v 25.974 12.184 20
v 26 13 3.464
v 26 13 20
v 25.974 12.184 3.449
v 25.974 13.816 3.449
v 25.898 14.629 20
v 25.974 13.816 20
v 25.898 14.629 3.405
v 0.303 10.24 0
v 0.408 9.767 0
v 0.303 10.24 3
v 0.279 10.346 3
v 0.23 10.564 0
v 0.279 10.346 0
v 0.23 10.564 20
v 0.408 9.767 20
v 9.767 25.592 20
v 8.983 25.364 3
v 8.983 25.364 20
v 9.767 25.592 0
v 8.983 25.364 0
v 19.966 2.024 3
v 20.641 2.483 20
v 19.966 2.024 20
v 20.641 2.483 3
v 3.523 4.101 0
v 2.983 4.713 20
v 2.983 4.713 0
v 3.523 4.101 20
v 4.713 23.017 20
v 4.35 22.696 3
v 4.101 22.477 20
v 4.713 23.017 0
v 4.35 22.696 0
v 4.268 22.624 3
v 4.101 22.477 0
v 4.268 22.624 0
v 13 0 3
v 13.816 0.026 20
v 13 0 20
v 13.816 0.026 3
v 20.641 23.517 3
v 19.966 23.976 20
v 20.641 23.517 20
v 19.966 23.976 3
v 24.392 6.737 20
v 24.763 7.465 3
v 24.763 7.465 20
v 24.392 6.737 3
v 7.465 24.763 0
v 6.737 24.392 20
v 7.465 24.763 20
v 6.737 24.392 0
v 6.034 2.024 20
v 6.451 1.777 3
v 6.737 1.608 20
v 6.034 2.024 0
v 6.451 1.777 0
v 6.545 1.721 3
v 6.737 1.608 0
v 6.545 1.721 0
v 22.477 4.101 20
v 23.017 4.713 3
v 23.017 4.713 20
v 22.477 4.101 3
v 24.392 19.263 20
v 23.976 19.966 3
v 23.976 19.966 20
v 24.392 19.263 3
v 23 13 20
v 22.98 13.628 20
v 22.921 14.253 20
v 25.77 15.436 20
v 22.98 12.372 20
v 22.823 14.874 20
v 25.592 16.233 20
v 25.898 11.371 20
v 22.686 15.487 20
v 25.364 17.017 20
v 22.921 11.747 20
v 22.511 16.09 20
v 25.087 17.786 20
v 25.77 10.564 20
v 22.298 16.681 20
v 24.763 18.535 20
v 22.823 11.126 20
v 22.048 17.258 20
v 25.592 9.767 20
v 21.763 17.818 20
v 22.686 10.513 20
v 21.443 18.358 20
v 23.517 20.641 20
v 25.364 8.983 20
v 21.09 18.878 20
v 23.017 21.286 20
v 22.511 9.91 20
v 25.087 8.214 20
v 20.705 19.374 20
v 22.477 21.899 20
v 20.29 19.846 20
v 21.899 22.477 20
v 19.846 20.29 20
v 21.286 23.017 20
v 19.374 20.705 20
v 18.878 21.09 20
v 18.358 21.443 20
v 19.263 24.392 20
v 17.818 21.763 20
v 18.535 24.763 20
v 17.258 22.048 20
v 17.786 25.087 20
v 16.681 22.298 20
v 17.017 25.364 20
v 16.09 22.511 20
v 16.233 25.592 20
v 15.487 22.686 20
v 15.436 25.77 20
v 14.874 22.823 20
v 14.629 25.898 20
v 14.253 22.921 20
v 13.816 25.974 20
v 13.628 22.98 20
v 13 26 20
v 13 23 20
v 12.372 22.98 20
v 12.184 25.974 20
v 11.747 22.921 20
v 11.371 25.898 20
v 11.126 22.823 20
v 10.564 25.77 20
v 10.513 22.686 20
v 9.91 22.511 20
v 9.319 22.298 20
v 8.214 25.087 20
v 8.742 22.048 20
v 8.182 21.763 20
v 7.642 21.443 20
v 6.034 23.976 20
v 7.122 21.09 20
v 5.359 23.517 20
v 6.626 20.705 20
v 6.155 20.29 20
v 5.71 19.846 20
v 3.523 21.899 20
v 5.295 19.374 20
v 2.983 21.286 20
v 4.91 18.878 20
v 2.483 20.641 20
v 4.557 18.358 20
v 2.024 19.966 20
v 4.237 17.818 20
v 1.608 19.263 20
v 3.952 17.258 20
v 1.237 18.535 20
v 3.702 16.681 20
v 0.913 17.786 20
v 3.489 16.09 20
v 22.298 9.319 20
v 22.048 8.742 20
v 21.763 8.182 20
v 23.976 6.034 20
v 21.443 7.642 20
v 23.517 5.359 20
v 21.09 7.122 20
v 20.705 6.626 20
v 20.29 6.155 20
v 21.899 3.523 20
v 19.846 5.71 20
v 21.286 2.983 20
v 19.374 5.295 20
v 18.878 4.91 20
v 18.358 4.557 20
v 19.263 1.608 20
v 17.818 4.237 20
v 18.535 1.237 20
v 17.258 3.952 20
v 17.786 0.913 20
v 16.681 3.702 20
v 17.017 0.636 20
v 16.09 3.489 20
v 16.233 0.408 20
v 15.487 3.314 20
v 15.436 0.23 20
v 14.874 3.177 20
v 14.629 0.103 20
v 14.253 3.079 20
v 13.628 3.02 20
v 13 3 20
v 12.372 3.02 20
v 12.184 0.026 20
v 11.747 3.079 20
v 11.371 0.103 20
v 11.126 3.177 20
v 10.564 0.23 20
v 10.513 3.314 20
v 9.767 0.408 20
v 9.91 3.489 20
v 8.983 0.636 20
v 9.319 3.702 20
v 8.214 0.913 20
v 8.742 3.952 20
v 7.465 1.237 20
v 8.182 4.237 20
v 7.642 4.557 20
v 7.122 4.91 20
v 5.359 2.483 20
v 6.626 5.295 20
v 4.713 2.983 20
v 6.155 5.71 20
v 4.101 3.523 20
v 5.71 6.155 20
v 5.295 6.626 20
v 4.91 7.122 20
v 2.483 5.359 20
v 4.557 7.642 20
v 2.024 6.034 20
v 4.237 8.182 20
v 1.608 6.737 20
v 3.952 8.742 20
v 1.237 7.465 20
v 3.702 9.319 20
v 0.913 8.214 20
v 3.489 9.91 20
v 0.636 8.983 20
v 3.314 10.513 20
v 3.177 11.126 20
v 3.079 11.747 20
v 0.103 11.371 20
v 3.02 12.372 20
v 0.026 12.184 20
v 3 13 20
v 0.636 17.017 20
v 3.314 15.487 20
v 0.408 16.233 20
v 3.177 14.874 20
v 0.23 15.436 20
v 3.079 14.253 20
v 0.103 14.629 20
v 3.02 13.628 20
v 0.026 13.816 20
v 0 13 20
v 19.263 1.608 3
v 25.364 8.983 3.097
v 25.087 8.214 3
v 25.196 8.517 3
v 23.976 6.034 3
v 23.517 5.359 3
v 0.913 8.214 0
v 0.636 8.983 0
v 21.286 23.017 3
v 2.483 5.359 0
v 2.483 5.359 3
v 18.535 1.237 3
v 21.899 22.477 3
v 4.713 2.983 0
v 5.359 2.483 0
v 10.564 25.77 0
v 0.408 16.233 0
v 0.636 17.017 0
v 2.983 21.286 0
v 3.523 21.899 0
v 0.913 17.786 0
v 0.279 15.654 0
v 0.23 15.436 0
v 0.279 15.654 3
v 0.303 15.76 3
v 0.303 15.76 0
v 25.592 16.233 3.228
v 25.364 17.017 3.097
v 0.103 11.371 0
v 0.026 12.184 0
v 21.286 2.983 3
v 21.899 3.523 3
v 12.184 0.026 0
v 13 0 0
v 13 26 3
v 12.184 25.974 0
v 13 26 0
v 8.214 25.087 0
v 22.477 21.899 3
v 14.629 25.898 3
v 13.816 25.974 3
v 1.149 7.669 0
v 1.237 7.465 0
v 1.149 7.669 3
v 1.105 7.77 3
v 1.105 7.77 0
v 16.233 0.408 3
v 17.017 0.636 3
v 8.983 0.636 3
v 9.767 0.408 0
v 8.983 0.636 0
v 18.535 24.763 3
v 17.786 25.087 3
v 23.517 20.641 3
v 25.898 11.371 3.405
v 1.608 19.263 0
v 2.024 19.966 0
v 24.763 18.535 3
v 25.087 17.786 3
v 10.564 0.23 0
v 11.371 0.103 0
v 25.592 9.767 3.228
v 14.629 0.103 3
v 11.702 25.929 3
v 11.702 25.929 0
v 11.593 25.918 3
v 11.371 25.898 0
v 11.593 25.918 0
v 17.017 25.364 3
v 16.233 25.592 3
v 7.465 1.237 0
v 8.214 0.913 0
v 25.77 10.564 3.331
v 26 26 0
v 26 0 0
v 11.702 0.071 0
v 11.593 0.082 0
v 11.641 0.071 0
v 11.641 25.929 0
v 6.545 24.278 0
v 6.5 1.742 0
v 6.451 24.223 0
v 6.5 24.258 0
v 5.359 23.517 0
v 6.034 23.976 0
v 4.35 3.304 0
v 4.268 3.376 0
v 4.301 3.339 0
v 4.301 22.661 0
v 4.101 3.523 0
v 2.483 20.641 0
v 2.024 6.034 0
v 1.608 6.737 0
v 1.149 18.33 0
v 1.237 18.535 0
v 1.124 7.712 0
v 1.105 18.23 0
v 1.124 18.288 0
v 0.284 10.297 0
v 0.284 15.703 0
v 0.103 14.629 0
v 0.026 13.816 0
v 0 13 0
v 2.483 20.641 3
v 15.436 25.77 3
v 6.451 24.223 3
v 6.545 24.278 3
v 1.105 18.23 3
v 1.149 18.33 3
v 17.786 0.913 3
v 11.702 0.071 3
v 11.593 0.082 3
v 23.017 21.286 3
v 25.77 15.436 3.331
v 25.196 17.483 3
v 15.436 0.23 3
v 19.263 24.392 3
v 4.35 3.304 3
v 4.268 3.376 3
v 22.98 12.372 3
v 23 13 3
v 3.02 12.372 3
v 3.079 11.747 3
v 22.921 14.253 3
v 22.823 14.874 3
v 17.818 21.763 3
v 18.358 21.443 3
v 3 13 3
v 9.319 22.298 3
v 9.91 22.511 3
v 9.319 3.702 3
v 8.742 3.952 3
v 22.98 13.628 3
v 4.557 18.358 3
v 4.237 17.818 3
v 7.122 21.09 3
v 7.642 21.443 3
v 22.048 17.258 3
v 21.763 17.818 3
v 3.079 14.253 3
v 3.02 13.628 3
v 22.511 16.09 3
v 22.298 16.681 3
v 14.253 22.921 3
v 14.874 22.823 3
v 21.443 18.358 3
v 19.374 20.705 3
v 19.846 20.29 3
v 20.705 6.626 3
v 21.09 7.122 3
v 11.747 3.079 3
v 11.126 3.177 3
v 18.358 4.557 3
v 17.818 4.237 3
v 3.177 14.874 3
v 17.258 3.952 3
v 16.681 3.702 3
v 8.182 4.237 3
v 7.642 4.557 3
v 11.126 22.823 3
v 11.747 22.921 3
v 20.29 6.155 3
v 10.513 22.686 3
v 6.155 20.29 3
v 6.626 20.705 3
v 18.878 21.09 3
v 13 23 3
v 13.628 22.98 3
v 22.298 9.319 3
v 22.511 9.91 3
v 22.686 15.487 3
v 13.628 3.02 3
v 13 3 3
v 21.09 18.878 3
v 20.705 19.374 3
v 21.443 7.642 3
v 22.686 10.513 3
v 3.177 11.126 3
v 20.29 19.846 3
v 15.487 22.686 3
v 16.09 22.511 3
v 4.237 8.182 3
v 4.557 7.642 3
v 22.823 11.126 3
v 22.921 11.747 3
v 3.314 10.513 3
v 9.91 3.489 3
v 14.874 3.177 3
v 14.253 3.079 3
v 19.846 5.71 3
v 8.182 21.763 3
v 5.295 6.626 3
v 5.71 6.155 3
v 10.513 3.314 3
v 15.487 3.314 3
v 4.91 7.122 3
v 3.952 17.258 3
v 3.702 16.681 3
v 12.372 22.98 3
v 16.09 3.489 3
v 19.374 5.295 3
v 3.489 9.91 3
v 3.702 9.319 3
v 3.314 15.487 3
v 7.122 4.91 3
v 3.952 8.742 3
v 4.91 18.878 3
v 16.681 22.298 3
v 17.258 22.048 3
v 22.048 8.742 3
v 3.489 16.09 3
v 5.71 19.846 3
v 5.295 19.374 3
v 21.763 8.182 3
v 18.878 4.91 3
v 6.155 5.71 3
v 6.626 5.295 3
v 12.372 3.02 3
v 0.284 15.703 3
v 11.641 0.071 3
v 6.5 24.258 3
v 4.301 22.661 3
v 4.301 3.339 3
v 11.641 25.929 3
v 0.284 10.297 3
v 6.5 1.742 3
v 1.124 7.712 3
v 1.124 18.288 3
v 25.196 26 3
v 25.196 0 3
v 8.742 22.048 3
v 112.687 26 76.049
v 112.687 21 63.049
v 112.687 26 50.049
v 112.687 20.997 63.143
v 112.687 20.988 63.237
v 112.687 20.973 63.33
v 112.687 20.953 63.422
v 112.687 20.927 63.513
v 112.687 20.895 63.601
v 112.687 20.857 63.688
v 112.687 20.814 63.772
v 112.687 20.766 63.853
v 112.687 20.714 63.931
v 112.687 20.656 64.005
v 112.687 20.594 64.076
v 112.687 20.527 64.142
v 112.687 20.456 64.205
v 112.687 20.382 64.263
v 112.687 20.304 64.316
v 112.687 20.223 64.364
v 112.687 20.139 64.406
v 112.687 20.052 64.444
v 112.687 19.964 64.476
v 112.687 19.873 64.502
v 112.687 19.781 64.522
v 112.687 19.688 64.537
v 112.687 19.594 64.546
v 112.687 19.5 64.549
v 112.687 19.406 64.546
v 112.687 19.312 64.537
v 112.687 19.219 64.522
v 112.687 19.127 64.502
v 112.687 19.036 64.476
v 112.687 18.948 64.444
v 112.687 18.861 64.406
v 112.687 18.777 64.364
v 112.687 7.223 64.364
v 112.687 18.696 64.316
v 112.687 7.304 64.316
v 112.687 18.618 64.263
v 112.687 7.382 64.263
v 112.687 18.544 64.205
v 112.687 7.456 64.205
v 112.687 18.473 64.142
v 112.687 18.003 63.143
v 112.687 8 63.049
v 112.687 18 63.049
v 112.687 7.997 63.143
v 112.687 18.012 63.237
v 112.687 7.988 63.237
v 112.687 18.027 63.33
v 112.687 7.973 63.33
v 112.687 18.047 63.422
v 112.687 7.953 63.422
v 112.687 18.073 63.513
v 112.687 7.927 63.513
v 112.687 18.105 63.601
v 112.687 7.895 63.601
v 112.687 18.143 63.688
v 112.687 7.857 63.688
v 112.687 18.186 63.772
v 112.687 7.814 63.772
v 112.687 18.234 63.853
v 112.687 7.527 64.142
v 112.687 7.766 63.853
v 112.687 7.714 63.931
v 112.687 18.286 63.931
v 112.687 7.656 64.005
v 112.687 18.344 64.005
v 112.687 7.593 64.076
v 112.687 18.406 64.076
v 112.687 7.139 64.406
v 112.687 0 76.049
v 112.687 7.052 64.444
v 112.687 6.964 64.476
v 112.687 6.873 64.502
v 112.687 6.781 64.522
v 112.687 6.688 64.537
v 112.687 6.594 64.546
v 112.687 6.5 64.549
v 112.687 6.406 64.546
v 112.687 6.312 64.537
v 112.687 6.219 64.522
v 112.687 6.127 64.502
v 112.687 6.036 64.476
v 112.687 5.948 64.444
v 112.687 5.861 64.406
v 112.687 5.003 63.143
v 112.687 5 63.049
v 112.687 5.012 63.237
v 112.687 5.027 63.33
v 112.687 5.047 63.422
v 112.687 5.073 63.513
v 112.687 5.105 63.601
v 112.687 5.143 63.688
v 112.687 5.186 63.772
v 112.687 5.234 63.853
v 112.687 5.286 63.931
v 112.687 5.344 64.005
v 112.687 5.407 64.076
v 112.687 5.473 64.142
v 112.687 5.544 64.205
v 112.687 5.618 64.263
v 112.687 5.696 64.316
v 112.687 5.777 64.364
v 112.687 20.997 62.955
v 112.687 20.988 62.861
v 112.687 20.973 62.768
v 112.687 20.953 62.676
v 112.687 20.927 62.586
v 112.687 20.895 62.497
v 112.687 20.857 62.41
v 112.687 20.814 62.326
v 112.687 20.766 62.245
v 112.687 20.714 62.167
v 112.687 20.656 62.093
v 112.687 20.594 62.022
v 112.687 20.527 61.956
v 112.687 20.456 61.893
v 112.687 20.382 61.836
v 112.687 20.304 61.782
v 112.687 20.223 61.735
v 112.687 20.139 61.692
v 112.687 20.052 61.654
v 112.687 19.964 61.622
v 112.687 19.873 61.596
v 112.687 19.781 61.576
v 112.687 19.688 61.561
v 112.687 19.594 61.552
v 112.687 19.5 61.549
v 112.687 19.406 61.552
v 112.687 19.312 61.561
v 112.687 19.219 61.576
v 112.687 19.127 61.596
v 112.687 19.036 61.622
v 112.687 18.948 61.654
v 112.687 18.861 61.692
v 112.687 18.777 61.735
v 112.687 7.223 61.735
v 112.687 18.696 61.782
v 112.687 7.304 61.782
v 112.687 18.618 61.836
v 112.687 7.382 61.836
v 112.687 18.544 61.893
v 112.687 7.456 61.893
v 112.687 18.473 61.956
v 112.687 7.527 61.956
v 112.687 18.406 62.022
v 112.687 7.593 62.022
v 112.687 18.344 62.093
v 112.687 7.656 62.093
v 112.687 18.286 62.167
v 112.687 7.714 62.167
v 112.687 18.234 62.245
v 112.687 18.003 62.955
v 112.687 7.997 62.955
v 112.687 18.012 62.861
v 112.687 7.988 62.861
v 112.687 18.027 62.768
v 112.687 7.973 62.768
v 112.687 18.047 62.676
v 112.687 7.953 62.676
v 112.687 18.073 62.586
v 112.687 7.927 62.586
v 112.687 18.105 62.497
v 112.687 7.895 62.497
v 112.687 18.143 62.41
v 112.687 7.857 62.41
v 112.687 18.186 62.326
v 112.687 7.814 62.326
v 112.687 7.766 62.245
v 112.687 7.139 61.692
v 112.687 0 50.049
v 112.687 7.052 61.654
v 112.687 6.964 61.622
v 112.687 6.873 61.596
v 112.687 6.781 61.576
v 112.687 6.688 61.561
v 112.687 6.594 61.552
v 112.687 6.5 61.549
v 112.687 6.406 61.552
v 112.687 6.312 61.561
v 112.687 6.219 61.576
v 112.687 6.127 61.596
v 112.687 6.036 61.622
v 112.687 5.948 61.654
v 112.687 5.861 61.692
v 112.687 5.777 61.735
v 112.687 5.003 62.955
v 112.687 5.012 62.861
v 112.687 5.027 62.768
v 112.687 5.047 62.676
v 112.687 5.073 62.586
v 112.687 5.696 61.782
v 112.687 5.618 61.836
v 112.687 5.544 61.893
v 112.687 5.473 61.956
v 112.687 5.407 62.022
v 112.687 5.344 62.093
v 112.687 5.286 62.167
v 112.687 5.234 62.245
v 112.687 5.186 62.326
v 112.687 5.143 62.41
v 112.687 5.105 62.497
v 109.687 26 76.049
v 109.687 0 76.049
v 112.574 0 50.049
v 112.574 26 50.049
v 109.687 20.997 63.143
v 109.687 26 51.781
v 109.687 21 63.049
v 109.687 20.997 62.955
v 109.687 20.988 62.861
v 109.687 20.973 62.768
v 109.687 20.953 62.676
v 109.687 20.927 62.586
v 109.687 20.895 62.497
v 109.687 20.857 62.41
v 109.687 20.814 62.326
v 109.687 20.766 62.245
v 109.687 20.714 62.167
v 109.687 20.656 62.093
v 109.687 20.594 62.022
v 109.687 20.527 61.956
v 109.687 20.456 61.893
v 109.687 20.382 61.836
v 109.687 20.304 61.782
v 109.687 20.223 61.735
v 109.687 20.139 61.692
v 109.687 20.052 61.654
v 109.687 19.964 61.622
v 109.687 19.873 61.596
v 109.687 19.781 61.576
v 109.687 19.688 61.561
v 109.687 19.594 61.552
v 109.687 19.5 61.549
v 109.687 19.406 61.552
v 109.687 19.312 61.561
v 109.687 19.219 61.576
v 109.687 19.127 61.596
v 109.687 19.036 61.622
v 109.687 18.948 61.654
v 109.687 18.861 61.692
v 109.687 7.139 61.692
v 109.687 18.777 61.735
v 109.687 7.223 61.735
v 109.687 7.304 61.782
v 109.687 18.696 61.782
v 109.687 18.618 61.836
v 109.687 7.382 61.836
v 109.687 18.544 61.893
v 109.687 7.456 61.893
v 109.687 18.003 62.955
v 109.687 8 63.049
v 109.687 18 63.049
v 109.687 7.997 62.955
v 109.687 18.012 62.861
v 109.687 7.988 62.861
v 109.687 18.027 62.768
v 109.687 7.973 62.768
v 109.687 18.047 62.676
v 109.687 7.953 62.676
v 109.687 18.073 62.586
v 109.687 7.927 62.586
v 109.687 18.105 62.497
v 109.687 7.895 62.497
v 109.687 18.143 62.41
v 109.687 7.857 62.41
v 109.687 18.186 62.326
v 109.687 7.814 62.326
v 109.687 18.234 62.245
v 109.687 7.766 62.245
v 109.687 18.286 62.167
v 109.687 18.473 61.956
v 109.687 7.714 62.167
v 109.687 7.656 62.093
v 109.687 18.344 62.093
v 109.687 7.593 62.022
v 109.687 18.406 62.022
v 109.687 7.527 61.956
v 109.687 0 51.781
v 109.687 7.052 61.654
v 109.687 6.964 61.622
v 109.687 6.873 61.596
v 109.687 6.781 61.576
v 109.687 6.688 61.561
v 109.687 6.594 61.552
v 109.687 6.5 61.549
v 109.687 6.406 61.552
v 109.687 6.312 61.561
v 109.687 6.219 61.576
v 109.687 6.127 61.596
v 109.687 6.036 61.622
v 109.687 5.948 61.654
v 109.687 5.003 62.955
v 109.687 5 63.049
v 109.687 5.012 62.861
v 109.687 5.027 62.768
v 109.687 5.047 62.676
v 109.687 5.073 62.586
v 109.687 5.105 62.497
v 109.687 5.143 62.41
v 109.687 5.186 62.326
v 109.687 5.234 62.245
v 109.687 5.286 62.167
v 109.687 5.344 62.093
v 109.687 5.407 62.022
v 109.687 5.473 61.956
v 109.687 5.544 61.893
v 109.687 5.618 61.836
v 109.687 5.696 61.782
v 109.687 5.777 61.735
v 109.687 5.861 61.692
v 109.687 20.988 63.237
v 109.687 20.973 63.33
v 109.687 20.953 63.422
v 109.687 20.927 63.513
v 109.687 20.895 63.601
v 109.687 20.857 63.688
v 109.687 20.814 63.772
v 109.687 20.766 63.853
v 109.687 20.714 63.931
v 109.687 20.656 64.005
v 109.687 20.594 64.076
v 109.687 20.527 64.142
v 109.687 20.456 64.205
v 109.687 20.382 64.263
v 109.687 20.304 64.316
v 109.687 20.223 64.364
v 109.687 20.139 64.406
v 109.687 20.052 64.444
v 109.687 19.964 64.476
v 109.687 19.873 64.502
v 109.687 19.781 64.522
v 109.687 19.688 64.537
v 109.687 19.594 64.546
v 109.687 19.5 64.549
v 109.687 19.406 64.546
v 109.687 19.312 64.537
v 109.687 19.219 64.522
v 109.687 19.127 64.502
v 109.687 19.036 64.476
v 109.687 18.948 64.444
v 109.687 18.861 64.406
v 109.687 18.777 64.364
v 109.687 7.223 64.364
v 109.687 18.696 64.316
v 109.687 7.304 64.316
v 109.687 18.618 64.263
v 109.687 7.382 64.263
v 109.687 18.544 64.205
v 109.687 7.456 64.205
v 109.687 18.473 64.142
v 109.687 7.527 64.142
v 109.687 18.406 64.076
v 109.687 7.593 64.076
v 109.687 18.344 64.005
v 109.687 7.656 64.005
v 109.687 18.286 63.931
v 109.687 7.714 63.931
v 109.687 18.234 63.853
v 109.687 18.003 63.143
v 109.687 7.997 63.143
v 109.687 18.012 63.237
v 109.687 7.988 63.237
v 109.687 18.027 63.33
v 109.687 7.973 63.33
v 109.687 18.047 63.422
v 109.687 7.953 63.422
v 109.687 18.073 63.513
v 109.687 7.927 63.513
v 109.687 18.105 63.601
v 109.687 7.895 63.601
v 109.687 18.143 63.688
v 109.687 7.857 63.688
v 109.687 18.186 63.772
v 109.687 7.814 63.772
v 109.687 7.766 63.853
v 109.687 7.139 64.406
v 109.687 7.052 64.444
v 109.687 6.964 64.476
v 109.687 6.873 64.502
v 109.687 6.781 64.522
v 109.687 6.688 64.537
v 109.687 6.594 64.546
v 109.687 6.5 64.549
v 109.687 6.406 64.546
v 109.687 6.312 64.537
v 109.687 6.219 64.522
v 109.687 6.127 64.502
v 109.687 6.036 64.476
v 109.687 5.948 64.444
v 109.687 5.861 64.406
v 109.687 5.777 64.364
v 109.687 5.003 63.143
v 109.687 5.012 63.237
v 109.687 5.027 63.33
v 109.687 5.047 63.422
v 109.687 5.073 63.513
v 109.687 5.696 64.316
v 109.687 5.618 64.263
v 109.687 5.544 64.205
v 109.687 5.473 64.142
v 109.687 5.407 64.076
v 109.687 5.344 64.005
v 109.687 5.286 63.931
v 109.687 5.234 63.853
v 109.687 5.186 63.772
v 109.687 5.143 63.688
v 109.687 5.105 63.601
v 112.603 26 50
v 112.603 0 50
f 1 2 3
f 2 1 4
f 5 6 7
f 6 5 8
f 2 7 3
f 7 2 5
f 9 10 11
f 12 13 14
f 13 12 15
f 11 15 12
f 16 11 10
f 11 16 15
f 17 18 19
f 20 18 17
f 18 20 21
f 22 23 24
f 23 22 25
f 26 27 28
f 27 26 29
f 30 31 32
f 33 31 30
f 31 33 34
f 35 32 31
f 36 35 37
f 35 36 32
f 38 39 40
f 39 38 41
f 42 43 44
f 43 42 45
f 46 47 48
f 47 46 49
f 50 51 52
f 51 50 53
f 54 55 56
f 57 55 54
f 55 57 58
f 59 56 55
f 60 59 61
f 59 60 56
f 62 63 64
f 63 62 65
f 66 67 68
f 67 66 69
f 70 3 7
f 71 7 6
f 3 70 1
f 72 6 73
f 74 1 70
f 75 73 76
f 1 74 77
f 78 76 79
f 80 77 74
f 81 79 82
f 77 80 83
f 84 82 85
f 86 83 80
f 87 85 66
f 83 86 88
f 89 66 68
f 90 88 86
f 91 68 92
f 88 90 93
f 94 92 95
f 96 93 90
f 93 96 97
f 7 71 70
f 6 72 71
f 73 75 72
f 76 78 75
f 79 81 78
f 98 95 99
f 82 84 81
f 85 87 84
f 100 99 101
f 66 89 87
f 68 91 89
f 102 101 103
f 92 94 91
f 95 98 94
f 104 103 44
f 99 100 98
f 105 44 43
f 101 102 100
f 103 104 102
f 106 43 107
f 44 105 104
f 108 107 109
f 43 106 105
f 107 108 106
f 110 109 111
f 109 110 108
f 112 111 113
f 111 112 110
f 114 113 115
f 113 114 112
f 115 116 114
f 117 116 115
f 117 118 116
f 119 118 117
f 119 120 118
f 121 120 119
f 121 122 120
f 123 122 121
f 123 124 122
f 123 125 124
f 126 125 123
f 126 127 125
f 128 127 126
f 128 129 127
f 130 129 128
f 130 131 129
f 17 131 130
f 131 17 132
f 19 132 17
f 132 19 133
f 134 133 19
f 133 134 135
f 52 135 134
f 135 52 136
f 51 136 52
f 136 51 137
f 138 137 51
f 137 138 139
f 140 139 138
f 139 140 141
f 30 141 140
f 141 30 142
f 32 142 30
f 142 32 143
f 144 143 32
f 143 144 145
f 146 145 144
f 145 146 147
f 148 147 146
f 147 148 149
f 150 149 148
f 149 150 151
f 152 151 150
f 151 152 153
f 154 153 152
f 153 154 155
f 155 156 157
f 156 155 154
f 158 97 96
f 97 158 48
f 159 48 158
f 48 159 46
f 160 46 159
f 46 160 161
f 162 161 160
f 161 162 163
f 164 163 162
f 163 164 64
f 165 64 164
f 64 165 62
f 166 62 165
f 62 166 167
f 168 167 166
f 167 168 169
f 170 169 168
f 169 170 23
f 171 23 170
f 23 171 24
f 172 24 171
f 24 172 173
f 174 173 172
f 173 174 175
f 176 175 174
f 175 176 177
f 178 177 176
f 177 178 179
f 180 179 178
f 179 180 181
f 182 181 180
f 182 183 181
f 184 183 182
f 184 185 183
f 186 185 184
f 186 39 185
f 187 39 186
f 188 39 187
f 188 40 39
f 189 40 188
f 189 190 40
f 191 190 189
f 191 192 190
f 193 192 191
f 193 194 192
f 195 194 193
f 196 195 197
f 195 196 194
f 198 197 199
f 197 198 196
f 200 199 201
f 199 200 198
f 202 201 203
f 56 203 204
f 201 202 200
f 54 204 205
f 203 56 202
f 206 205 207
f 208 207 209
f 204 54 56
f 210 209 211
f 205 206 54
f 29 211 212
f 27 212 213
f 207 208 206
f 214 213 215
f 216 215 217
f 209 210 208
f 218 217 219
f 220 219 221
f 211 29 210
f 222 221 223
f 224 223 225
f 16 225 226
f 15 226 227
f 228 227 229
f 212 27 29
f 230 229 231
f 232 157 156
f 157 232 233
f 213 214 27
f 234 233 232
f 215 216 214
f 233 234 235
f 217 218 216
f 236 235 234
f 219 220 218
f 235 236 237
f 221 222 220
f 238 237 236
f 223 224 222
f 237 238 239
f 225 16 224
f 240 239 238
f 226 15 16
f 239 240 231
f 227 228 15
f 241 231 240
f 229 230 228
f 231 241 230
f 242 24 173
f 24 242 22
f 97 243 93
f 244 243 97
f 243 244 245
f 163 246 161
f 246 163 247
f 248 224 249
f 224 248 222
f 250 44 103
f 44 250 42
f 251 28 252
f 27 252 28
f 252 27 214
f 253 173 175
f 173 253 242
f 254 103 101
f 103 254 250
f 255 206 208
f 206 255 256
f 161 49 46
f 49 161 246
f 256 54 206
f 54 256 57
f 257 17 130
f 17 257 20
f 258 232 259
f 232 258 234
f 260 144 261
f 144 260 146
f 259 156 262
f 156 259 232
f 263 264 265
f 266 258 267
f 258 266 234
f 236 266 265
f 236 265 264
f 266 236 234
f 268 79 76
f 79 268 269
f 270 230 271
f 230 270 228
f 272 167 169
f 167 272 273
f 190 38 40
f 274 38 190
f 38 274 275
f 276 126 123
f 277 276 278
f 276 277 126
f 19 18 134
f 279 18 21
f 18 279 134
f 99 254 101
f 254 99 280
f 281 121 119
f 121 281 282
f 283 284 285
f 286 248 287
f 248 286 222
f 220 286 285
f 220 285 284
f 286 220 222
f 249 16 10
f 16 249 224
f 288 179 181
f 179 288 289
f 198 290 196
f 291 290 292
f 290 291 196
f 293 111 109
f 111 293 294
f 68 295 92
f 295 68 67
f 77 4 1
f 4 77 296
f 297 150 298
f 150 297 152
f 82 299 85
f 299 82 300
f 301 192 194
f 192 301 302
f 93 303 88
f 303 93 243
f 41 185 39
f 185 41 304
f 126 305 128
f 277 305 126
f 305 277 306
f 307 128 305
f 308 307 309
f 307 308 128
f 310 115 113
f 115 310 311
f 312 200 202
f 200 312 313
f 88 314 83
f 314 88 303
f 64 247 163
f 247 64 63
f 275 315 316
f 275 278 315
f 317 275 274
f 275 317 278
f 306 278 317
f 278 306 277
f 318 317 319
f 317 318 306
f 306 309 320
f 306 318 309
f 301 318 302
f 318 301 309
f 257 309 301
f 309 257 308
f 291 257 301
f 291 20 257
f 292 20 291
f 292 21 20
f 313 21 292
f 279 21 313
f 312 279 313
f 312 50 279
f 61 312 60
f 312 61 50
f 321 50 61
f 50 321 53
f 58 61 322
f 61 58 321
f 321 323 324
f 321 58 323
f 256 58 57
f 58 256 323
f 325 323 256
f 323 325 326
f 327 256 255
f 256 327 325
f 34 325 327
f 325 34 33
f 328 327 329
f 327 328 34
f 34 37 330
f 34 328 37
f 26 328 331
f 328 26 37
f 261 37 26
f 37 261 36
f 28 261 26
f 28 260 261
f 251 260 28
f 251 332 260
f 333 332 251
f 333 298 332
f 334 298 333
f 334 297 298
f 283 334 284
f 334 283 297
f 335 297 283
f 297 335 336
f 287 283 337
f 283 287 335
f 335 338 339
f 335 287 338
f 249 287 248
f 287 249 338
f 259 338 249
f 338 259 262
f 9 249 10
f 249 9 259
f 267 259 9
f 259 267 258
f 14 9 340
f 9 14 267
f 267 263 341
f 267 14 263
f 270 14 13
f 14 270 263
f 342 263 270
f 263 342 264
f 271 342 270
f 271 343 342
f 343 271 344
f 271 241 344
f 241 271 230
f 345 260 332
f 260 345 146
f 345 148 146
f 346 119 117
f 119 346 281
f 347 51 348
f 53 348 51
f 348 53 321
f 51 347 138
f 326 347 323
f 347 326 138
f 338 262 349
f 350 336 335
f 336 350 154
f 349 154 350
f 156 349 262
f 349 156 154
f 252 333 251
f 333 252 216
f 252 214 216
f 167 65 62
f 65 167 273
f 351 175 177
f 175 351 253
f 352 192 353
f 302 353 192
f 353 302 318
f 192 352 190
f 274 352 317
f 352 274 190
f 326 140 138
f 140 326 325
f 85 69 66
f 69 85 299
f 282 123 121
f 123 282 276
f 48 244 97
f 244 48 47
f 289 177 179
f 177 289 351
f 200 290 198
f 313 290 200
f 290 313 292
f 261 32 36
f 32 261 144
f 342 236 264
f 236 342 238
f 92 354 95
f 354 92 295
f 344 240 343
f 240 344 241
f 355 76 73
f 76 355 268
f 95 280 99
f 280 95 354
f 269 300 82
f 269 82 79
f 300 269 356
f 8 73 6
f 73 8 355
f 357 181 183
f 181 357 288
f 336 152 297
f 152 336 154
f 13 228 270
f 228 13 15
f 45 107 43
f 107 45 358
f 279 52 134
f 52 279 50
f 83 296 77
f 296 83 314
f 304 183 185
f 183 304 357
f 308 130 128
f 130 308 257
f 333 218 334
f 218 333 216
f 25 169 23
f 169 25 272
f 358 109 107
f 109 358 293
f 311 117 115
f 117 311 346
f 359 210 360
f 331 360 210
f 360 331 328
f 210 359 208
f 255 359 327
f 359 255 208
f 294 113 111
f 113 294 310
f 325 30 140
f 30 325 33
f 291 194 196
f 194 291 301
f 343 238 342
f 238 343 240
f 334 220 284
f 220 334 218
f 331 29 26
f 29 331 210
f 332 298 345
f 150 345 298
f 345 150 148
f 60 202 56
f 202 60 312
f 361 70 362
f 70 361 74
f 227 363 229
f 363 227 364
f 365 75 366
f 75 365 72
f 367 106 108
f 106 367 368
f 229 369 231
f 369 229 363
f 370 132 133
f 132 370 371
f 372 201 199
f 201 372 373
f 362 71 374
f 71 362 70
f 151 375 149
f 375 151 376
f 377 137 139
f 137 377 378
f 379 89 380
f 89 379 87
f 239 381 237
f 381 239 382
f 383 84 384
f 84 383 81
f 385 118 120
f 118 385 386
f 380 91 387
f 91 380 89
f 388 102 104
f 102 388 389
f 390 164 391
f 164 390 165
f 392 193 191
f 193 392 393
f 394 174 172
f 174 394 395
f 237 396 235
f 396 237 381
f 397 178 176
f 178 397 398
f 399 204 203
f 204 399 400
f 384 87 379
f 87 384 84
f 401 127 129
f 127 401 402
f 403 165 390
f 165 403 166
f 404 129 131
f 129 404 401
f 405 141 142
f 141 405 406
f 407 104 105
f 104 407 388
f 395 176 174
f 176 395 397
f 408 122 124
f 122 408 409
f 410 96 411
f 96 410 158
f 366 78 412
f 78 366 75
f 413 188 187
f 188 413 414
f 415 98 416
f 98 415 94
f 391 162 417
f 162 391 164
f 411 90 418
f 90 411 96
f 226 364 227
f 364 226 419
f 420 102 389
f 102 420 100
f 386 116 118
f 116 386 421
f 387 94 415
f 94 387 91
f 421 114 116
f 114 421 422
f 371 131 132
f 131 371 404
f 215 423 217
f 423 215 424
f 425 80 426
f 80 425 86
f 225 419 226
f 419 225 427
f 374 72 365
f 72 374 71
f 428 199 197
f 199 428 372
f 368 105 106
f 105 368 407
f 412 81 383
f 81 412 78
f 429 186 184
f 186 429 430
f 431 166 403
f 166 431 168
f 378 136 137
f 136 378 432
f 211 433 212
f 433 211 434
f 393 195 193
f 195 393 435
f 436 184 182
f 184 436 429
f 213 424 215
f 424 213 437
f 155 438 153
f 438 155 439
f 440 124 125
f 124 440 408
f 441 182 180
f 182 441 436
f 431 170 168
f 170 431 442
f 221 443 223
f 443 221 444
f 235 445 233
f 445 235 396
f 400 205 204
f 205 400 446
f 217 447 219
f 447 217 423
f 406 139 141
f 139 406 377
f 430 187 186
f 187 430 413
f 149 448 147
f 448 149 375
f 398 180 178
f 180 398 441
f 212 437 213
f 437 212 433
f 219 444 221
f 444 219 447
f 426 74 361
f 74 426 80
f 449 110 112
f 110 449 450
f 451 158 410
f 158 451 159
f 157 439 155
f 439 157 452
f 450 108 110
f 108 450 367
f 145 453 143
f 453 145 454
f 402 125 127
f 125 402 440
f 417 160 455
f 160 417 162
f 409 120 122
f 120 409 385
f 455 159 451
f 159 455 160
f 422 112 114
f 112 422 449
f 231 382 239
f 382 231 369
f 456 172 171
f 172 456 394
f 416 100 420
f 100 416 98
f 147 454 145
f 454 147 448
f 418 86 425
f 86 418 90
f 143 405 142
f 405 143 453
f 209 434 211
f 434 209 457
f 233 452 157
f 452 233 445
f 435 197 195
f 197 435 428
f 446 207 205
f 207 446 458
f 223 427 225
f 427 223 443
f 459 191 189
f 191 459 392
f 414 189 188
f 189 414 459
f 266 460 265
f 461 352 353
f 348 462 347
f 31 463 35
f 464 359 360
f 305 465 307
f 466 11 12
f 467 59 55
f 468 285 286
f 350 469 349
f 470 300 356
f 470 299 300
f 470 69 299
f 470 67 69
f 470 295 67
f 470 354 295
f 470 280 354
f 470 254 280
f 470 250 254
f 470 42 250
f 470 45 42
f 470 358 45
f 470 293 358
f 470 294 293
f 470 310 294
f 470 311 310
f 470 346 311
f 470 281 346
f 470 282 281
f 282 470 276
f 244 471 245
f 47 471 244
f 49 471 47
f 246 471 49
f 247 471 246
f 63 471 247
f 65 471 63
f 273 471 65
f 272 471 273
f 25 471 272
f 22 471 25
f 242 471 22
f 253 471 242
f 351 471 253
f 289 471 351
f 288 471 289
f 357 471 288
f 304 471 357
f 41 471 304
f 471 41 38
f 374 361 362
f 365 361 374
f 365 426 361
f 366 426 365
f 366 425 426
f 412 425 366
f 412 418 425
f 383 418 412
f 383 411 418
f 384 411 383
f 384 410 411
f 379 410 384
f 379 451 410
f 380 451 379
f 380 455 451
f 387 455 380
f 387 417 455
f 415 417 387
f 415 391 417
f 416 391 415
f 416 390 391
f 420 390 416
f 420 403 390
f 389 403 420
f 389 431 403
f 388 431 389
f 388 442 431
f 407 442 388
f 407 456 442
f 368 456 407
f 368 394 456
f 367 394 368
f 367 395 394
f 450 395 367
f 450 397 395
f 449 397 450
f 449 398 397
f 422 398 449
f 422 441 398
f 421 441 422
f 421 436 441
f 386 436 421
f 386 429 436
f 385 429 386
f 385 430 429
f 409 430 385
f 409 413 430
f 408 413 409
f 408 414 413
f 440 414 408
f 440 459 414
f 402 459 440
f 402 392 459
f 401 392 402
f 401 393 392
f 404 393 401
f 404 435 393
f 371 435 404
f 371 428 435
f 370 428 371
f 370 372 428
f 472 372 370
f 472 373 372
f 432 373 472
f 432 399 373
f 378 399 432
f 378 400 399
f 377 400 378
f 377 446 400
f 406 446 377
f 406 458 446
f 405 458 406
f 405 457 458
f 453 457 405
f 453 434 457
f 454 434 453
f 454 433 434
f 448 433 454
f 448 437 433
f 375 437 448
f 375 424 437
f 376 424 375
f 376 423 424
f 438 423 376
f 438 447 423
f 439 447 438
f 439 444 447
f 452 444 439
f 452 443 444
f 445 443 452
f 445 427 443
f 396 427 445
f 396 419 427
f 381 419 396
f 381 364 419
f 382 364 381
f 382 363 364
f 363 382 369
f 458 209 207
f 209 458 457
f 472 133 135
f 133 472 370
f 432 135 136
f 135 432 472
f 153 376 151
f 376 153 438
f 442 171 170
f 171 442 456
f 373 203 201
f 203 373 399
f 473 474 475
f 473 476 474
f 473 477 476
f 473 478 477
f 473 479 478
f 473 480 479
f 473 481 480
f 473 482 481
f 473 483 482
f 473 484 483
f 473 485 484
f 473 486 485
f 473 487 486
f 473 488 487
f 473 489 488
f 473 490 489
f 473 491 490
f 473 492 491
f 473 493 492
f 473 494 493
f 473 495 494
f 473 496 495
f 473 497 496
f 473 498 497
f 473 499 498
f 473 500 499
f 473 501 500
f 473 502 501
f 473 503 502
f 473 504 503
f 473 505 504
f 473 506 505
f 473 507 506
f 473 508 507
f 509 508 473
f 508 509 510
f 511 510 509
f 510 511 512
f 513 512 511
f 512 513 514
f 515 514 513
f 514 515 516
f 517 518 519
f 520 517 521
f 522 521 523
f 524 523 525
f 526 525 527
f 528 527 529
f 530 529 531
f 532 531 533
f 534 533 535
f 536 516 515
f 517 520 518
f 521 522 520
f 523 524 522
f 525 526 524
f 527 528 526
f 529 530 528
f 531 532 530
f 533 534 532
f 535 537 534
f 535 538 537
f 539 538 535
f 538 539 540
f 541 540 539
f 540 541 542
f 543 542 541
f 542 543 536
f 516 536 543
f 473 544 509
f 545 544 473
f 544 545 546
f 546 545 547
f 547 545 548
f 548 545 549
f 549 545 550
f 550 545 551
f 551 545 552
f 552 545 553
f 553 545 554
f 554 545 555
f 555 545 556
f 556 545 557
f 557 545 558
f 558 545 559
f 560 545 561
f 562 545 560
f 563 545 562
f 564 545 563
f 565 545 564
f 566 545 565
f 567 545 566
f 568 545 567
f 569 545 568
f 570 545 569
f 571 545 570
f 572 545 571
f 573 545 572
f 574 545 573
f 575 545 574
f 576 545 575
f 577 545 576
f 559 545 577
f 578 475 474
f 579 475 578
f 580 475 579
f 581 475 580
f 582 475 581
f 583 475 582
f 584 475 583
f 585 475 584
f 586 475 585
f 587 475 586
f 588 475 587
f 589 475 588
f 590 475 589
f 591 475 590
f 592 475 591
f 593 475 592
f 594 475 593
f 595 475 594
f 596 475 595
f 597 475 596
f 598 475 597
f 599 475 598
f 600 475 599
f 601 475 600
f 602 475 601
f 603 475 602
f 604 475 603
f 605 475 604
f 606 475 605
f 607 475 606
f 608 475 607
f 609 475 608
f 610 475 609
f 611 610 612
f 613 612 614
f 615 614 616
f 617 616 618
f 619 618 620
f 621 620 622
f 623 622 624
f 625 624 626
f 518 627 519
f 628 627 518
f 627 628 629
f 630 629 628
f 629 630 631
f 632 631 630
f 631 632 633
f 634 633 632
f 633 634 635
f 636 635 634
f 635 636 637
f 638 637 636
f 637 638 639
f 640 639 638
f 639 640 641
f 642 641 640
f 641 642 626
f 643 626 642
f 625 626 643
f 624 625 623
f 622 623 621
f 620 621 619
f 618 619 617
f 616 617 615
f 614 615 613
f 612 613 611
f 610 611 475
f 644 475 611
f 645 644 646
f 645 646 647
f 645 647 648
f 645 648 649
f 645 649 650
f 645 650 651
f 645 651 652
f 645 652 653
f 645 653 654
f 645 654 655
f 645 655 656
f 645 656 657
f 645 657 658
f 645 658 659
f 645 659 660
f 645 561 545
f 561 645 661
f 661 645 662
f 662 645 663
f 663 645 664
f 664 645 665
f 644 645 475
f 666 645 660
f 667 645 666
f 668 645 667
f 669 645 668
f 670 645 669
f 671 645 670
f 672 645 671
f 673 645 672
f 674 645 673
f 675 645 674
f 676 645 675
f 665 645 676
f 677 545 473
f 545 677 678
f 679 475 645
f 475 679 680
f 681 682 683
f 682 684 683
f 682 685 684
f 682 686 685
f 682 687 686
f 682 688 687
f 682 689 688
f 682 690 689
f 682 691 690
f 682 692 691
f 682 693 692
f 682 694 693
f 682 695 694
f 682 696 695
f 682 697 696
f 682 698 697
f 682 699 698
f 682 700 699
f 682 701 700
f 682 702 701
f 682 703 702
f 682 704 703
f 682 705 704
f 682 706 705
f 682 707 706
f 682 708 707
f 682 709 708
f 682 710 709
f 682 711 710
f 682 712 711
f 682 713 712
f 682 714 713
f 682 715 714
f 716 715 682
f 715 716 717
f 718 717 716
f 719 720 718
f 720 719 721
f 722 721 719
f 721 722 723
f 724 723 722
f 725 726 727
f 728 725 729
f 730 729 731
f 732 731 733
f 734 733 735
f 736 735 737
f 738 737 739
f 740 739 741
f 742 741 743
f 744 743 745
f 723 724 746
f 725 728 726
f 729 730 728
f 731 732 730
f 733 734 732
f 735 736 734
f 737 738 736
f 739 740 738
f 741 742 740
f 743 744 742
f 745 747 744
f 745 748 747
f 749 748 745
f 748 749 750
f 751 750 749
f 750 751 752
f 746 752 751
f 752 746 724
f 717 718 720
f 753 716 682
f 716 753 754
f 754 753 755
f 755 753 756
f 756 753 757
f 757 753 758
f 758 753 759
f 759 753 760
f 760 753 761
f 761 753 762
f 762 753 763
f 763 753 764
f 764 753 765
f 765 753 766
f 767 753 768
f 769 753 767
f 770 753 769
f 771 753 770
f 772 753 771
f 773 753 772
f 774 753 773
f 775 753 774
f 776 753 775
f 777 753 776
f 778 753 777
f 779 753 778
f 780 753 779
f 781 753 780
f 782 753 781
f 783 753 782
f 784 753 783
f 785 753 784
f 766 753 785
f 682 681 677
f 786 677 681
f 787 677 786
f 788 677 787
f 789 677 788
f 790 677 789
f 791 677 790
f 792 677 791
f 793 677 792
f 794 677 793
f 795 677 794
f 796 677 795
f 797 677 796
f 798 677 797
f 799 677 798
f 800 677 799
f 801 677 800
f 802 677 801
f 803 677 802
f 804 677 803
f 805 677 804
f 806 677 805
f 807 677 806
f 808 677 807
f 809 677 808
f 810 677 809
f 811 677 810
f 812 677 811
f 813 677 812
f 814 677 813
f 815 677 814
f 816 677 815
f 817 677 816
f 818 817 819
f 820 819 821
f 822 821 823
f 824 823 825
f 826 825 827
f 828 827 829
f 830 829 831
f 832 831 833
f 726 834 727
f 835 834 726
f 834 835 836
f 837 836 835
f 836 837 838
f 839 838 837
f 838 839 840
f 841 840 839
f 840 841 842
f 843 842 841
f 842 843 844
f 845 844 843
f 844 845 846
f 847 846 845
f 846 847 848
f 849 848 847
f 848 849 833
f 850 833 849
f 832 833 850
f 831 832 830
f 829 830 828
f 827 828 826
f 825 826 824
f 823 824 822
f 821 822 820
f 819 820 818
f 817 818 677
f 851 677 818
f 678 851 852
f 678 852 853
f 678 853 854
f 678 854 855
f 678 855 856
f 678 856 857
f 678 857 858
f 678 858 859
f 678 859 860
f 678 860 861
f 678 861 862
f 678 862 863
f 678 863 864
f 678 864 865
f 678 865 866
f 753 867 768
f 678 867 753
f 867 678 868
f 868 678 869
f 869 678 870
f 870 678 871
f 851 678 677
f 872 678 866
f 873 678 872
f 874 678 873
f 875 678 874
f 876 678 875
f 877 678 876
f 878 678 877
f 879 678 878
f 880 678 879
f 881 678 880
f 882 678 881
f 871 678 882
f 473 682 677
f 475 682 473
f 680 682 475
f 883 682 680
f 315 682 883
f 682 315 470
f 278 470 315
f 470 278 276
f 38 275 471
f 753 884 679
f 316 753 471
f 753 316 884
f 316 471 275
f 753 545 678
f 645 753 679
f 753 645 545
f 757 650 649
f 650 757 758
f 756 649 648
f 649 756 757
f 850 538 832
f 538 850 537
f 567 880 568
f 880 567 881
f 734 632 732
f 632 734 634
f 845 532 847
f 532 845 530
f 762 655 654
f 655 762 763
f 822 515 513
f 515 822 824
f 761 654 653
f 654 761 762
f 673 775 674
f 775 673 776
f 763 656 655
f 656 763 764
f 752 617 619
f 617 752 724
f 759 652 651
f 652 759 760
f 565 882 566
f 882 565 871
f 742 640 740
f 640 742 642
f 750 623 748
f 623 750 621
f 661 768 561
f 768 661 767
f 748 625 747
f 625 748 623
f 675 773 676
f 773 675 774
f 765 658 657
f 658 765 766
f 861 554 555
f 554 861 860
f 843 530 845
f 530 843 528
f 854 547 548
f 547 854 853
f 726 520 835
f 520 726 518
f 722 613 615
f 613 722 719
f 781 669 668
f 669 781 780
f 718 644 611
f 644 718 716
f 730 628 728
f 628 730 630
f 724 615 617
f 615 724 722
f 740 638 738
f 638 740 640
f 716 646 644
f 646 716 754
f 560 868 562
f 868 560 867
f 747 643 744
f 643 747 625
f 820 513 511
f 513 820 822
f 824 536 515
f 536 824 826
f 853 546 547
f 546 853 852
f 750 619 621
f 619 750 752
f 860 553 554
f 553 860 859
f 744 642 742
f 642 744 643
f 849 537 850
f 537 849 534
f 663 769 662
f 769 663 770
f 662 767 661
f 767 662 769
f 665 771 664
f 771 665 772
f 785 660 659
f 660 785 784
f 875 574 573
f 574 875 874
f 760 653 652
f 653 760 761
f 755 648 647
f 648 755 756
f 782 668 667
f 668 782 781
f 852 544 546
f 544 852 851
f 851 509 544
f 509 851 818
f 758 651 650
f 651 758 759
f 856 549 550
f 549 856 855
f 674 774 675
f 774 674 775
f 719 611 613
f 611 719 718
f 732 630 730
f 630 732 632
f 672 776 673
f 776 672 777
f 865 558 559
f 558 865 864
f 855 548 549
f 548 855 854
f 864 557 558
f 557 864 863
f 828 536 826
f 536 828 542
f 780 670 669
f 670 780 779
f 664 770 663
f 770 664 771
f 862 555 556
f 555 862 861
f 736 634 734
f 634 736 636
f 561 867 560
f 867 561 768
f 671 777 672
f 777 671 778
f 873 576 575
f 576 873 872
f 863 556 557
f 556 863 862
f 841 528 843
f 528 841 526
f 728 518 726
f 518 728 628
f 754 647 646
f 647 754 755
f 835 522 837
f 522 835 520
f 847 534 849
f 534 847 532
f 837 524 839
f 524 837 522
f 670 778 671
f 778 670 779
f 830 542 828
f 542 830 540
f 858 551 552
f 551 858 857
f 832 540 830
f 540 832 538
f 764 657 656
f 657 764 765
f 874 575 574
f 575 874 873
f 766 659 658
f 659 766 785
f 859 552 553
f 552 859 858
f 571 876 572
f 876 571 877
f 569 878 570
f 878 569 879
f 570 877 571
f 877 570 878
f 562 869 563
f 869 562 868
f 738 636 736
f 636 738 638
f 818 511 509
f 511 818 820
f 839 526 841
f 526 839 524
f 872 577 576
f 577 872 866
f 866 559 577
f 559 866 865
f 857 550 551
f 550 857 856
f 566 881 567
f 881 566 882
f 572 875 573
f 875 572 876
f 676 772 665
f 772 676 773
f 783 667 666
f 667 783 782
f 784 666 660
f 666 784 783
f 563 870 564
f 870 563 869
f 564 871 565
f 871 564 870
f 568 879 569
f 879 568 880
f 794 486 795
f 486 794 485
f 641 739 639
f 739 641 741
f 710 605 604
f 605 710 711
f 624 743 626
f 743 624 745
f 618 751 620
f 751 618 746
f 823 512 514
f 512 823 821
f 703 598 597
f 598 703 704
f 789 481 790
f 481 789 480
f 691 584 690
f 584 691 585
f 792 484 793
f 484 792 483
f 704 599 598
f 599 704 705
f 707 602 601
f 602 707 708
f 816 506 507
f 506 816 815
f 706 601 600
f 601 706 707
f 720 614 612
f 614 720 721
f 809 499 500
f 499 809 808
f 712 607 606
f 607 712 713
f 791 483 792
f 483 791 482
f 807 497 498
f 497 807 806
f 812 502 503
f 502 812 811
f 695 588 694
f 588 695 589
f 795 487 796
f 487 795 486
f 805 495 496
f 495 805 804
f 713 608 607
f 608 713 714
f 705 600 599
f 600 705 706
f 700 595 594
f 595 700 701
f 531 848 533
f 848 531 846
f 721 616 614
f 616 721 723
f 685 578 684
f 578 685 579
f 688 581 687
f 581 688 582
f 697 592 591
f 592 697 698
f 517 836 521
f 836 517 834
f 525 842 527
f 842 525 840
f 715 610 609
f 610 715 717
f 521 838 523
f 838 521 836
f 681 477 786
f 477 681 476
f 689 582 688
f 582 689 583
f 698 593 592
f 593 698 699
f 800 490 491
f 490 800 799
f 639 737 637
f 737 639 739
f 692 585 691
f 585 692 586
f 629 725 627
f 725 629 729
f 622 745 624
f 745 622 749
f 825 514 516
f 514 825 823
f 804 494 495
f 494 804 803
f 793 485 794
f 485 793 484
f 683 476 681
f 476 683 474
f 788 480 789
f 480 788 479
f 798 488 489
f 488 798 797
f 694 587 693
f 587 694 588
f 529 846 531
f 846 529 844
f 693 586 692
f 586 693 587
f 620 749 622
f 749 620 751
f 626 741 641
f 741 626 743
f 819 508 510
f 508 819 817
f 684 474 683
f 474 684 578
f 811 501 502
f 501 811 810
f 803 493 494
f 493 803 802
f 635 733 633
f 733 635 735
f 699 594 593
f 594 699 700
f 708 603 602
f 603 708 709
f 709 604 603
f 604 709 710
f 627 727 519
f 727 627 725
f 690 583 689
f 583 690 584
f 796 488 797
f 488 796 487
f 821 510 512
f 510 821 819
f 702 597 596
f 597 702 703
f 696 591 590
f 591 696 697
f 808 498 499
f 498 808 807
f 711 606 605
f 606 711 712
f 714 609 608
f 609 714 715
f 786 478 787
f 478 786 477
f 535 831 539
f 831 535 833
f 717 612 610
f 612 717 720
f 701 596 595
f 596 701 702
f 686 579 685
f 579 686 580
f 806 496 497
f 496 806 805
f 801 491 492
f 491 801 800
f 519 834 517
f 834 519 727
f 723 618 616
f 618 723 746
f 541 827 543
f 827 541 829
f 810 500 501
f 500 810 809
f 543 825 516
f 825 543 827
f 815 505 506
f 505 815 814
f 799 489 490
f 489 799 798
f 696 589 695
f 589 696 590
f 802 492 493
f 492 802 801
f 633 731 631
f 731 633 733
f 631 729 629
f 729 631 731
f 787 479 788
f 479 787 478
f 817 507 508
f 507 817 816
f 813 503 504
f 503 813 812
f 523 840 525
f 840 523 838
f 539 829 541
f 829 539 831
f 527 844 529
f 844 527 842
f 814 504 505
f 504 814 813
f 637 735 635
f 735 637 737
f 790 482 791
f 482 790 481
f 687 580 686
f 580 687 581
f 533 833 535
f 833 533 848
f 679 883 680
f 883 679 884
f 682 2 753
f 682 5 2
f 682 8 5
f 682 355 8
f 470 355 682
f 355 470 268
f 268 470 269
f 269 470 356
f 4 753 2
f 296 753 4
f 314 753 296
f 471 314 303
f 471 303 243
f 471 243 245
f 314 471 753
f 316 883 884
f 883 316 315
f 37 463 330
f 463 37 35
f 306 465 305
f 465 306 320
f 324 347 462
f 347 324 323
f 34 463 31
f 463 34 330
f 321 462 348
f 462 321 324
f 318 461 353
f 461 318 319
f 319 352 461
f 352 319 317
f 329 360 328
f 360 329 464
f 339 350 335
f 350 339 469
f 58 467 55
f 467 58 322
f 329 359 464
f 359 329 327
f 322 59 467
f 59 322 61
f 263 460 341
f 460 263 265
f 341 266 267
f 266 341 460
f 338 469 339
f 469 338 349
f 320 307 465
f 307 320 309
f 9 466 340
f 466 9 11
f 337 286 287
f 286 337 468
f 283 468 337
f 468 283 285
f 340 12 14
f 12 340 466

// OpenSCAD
//Klimakasse - Halterung für Stütze

pipe_diameter = 20;
strength = 3;
height = 100;
width = pipe_diameter + strength*2;
angle = 30;
screw_size = 3;

// Die Steck-Halterung für ein 20mm PVC-Rohr
module pipe_adapter() {
    translate([pipe_diameter / 2 + strength, pipe_diameter / 2 + strength, 0]) {
        difference() {
            cylinder(d = pipe_diameter + strength * 2, h=20, $fn=100);
            translate([0,0,strength]) {
                cylinder(d = pipe_diameter, h=20 - strength, $fn=100);
            }
        }
    }
    difference() {
        cube([width,width,strength]);
        difference() {
            cube([width,width,strength]);
            translate([width/2,width/2,0]) {
                cylinder(d=width, h=strength);
            }
            translate([width/2,0,0]) {
                cube([width/2, width, strength]);
            }
        }
    }

    
}

// Der geknickte arm zur Befestigung an der Kasse
module mount_arm() {
    
    // Vorlage für ein Loch für eine Schraube
    module screw_hole() {
        rotate([0,90,0]) {
            cylinder(d=screw_size, h=strength, $fn=100);
        }
    }
    rotate([0,-30,0]) {
        cube([height, width, strength]);
        translate([height-2.5,0,strength/2]) {
            rotate([0,angle,0]) {
                difference() {
                    cube([strength,width,width]);
                    translate([0,width/4,width/2]) {
                        screw_hole();
                    }
                    translate([0,width/4*3,width/2]) {
                        screw_hole();
                    }
                }
            }
        }
    }
}


//Arm und Steckverbindung werden erzeugt.
pipe_adapter();
translate([width, 0,0]) {
    mount_arm();
}
